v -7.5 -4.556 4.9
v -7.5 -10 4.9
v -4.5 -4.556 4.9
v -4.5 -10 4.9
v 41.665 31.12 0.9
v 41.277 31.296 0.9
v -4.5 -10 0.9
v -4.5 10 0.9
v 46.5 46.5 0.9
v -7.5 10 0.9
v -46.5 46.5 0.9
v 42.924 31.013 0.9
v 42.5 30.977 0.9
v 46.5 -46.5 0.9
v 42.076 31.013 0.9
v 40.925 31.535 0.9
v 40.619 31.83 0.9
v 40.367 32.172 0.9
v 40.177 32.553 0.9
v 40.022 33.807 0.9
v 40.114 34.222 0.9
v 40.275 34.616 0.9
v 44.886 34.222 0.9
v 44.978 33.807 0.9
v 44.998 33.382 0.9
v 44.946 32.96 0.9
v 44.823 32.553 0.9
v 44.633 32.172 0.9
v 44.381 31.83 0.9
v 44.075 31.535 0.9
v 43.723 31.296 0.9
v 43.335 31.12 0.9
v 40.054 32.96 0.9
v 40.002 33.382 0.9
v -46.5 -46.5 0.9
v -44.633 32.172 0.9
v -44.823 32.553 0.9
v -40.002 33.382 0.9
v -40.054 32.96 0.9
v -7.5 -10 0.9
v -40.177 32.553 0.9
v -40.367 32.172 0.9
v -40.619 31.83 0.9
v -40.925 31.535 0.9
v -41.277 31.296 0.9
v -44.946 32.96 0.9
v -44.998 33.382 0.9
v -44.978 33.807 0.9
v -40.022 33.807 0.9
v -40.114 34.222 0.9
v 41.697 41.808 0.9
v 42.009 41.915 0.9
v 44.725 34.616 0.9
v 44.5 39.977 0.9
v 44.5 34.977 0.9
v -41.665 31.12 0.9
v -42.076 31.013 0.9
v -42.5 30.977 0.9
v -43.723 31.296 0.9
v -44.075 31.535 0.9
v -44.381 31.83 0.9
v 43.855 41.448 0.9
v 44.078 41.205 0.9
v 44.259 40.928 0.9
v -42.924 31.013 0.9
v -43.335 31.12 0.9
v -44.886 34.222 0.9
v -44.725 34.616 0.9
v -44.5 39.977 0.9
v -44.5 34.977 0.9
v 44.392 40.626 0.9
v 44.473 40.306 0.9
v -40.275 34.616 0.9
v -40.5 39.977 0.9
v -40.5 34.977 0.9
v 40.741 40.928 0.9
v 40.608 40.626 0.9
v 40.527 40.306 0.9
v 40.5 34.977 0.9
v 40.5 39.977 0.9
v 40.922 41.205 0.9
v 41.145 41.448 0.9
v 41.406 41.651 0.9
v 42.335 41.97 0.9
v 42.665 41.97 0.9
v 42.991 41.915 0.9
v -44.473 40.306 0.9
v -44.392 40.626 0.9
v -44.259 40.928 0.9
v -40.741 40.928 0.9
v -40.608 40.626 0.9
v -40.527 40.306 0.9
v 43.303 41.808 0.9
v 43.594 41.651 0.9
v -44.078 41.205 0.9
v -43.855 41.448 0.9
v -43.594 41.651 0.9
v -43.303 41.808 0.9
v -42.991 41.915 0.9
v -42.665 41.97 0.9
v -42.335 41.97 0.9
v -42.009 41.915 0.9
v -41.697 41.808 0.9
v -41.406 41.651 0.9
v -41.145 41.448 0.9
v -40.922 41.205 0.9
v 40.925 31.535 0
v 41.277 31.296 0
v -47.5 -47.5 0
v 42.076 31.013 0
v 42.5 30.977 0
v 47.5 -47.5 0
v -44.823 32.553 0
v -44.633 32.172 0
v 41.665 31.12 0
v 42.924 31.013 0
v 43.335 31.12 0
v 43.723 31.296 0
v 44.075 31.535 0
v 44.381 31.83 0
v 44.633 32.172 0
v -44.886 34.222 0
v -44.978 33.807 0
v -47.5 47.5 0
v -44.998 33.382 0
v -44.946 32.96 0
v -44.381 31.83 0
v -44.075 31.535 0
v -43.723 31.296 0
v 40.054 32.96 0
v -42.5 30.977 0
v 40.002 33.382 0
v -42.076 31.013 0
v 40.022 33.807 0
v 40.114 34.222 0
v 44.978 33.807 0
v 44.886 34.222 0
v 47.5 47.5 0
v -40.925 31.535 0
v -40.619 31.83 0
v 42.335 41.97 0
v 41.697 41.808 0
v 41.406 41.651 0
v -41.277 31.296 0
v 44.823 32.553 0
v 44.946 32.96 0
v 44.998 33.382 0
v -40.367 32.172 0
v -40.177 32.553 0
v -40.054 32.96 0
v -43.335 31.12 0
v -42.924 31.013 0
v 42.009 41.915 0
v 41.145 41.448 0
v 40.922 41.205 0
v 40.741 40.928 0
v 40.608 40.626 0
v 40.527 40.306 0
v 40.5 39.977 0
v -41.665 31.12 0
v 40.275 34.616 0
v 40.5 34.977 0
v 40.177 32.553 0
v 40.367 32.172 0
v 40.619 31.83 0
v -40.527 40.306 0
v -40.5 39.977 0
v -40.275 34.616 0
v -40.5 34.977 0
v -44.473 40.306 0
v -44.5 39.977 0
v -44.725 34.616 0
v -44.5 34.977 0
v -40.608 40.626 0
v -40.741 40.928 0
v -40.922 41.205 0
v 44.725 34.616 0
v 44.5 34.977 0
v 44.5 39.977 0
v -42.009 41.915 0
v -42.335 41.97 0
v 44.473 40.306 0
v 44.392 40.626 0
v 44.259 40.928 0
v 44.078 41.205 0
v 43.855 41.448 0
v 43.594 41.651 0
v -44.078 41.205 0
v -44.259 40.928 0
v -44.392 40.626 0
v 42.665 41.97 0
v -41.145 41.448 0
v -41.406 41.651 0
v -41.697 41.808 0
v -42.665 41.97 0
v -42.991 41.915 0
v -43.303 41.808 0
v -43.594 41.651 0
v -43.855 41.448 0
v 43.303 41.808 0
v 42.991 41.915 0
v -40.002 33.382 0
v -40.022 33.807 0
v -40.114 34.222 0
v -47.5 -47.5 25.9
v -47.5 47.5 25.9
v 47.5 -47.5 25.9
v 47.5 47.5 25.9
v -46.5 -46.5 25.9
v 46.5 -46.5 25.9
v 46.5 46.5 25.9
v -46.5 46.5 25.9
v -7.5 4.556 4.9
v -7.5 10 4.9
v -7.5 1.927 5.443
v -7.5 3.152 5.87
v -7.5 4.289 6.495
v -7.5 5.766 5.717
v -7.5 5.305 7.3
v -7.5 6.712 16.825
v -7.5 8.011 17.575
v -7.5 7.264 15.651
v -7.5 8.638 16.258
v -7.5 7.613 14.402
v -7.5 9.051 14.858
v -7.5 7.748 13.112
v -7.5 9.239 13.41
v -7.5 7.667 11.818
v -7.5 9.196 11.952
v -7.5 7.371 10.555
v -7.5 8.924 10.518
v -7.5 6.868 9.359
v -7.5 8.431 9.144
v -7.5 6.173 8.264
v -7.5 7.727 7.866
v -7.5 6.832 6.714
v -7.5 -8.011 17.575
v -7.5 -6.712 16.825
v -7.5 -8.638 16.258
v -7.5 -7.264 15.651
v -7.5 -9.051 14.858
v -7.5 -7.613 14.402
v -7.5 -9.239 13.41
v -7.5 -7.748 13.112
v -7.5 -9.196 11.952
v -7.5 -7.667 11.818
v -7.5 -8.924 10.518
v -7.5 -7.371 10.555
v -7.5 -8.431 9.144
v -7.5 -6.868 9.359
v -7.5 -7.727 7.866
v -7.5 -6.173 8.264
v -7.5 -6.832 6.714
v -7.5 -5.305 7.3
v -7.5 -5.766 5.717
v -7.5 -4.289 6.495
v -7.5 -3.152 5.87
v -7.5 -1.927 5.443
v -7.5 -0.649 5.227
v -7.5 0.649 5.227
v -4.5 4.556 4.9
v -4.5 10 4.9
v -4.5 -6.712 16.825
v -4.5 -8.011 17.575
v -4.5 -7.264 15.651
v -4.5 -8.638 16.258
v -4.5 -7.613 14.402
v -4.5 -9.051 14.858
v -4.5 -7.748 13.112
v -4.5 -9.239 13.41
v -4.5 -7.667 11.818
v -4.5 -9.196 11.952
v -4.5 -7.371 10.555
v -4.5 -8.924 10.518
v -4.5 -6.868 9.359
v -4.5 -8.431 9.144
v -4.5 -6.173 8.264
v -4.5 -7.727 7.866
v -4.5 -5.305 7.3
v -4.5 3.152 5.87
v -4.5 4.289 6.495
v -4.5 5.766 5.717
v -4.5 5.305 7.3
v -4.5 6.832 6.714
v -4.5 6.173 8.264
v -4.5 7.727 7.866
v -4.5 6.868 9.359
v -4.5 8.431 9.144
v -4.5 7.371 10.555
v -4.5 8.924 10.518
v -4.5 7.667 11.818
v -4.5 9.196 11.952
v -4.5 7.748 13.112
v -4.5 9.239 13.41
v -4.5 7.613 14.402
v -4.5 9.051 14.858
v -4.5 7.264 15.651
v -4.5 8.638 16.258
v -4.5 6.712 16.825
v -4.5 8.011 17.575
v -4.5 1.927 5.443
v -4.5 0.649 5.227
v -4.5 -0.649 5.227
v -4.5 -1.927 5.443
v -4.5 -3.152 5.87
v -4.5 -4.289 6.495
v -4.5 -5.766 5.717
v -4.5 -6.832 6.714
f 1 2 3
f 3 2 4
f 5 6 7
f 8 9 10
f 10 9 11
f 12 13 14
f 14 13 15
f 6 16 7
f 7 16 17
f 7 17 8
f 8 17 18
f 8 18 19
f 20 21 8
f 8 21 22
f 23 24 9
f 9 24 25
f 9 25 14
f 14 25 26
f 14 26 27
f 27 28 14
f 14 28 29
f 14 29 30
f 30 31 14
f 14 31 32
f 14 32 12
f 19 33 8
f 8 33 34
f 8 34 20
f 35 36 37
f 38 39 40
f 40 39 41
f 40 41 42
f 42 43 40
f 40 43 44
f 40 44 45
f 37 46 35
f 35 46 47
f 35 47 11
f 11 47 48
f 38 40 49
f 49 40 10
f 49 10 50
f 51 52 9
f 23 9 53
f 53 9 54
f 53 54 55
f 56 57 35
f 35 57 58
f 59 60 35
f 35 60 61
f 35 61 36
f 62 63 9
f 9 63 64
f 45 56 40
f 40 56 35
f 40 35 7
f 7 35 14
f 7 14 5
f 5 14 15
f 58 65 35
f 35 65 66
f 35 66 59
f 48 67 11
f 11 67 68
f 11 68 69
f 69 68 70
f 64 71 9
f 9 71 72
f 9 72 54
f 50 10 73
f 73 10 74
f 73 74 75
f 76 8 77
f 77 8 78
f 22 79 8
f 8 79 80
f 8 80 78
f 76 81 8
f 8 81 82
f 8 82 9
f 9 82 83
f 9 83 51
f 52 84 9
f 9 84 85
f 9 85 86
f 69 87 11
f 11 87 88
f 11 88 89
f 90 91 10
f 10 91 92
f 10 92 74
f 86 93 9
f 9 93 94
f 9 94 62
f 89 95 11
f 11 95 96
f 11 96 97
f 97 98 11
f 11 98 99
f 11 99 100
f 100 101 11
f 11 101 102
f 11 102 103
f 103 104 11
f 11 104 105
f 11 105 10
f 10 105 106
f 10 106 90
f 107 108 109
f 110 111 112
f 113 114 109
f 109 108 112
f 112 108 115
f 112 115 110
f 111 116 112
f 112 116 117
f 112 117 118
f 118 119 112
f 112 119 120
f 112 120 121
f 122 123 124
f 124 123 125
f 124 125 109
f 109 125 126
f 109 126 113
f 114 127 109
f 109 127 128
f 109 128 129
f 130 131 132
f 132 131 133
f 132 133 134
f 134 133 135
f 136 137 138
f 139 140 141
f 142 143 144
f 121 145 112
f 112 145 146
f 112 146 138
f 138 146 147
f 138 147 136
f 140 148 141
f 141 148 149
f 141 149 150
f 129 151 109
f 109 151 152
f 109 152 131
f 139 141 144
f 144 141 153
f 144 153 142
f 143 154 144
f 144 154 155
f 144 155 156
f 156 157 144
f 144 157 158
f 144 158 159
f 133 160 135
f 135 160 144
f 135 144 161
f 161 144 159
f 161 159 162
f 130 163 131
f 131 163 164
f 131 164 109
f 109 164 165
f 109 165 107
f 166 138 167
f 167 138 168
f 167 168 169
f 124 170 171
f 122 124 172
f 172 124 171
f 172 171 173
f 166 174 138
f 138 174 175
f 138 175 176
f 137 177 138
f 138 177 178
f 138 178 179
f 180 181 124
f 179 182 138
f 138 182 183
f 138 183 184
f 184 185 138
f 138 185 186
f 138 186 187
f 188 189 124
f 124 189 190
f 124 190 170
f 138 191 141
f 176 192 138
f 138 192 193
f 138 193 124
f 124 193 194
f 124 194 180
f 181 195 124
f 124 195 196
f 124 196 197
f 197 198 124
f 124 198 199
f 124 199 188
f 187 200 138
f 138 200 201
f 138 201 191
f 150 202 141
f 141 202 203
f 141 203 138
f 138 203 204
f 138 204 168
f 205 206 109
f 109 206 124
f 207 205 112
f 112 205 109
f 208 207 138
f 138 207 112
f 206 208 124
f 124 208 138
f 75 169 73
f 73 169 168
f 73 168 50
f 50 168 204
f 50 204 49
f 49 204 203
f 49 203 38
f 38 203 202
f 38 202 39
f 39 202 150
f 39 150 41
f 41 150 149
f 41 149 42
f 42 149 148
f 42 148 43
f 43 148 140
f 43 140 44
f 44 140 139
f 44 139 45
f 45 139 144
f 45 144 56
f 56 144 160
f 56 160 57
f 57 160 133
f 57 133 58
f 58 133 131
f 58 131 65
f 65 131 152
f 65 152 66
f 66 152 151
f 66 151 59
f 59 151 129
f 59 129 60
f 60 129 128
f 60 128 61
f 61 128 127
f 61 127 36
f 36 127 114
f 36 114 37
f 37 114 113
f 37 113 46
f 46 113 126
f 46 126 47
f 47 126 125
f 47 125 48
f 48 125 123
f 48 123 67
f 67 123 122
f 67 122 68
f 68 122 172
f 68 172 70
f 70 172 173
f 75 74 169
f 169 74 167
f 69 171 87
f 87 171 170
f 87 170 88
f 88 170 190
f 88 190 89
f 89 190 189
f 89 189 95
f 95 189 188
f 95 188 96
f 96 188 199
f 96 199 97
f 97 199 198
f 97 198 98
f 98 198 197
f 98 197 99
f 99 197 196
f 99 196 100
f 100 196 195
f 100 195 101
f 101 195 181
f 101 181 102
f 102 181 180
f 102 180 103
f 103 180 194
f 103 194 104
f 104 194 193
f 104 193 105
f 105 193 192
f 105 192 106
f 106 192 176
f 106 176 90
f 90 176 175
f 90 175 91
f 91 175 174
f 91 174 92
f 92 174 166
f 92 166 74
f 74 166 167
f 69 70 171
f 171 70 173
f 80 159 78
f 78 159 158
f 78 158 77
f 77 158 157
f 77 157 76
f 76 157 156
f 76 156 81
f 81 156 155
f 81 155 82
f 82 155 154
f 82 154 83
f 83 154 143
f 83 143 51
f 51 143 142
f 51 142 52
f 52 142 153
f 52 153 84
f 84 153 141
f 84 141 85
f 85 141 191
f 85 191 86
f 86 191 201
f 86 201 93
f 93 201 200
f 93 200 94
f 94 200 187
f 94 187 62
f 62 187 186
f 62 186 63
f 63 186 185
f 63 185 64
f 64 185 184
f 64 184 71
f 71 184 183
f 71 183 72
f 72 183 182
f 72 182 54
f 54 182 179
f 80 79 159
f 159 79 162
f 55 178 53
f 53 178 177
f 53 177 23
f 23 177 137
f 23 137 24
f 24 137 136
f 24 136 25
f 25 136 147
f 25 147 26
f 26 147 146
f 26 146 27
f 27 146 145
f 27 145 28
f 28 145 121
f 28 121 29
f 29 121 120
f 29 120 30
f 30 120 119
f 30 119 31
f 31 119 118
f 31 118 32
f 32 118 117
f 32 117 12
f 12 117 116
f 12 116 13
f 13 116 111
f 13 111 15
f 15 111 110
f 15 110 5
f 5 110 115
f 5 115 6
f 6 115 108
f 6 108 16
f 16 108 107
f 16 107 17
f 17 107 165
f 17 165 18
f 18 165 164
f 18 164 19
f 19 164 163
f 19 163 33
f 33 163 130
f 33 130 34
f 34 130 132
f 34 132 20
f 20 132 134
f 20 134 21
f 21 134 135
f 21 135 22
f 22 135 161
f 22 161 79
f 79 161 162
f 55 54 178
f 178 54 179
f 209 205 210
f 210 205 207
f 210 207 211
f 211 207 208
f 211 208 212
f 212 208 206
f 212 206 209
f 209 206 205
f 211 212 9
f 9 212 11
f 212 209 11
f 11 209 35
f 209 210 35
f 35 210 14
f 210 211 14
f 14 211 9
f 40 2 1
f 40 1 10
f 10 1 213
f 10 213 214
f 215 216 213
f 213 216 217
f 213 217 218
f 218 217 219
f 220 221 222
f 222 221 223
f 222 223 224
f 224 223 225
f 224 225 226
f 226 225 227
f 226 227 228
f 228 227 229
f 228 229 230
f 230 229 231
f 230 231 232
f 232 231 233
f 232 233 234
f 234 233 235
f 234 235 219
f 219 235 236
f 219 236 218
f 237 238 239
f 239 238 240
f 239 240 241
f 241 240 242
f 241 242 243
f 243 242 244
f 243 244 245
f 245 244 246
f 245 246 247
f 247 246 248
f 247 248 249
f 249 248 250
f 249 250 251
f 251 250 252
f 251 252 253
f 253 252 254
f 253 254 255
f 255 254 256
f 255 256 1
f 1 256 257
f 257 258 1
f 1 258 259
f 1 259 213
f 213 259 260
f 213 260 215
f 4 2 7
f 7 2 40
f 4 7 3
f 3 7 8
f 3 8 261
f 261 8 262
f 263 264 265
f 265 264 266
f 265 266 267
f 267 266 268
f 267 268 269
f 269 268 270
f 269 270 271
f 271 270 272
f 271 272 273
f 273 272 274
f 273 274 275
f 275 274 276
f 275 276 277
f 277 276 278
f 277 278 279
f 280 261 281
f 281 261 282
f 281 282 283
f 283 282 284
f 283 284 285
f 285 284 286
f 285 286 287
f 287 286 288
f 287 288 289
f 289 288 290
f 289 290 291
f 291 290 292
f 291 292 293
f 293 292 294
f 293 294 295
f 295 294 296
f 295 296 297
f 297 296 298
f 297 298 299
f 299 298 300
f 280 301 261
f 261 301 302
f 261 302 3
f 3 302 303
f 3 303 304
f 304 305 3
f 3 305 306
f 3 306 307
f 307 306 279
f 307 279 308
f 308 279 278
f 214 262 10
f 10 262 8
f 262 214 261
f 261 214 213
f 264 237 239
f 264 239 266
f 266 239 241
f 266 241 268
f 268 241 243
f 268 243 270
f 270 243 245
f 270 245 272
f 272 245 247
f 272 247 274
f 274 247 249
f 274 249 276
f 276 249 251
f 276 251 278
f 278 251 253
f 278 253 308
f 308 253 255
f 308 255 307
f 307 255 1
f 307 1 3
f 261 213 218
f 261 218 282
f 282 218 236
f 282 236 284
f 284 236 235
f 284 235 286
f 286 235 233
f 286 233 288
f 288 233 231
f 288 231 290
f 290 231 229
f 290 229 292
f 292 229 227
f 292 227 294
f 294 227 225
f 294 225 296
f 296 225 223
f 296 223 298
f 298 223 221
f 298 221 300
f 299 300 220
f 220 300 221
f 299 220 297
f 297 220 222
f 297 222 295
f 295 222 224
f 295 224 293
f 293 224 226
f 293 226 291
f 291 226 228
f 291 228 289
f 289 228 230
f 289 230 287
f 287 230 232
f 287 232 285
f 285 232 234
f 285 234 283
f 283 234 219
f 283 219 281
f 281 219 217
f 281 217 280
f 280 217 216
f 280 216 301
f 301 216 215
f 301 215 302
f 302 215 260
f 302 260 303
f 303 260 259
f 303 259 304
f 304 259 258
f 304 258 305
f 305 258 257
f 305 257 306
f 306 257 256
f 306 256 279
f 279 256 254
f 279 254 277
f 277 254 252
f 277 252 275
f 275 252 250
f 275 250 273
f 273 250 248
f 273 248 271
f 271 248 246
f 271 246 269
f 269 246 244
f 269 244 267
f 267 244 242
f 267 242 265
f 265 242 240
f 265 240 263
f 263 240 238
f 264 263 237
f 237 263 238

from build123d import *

# Parameters (mm, degrees)
CROQUIS1_W              = 95
CROQUIS1_H              = 95
SALIENTE_EXTRUIR1_DEPTH = 0.9
CROQUIS2_W              = 95
CROQUIS2_H              = 95
CROQUIS2_W_2            = 93
CROQUIS2_H_2            = 93
SALIENTE_EXTRUIR2_DEPTH = 25
CROQUIS3_W              = 3
CROQUIS3_H              = 20
SALIENTE_EXTRUIR3_DEPTH = 4
SALIENTE_EXTRUIR4_START = -3
SALIENTE_EXTRUIR4_DEPTH = 3


with BuildPart() as part:
    # Croquis1 → Saliente-Extruir1 (new body)
    with BuildSketch(Plane.XY):
        Rectangle(CROQUIS1_W, CROQUIS1_H)
        with BuildLine():
            Line((-44.5, 39.976525822), (-44.5, 34.976525822))
            ThreePointArc((-44.5, 34.976525822), (-42.5, 30.976525822), (-40.5, 34.976525822))
            Line((-40.5, 34.976525822), (-40.5, 39.976525822))
            ThreePointArc((-40.5, 39.976525822), (-42.5, 41.976525822), (-44.5, 39.976525822))
        make_face(mode=Mode.SUBTRACT)
        with BuildLine():
            Line((40.5, 39.976525822), (40.5, 34.976525822))
            ThreePointArc((40.5, 34.976525822), (42.5, 30.976525822), (44.5, 34.976525822))
            Line((44.5, 34.976525822), (44.5, 39.976525822))
            ThreePointArc((44.5, 39.976525822), (42.5, 41.976525822), (40.5, 39.976525822))
        make_face(mode=Mode.SUBTRACT)
    extrude(amount=SALIENTE_EXTRUIR1_DEPTH)

    # Croquis2 → Saliente-Extruir2 (add)
    with BuildSketch(Plane.XY.offset(0.9)):
        Rectangle(CROQUIS2_W, CROQUIS2_H)
        Rectangle(CROQUIS2_W_2, CROQUIS2_H_2, mode=Mode.SUBTRACT)
    extrude(amount=SALIENTE_EXTRUIR2_DEPTH)

    # Croquis3 → Saliente-Extruir3 (add)
    with BuildSketch(Plane.XY.offset(0.9)):
        with Locations((-6, 0)):
            Rectangle(CROQUIS3_W, CROQUIS3_H)
    extrude(amount=SALIENTE_EXTRUIR3_DEPTH)

    # Croquis4 → Saliente-Extruir4 (add)
    with BuildSketch(Plane.ZY.offset(7.5).offset(SALIENTE_EXTRUIR4_START)):
        with BuildLine():
            Line((17.575, 8.010734985), (16.825, 6.711696879))
            ThreePointArc((16.825, 6.711696879), (5.2, 0), (16.825, -6.711696879))
            Line((16.825, -6.711696879), (17.575, -8.010734985))
            ThreePointArc((17.575, -8.010734985), (10.517735249, -8.924493721), (4.9, -4.5563143))
            Line((4.9, -4.5563143), (4.9, 4.5563143))
            ThreePointArc((4.9, 4.5563143), (10.517735249, 8.924493721), (17.575, 8.010734985))
        make_face()
    extrude(amount=SALIENTE_EXTRUIR4_DEPTH)


solid = part.part
